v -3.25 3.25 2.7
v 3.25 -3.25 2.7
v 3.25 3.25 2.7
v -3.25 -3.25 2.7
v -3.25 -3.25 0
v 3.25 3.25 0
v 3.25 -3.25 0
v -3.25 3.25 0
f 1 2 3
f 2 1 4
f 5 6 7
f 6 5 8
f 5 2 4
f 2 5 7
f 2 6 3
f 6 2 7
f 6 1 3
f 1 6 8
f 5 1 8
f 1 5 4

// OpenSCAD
x = 6.5;
y = 6.5;
z = 2.7;

// cube centered on X/Y
// flush with Z
translate([0, 0, z/2])
cube([x, y, z], true);
